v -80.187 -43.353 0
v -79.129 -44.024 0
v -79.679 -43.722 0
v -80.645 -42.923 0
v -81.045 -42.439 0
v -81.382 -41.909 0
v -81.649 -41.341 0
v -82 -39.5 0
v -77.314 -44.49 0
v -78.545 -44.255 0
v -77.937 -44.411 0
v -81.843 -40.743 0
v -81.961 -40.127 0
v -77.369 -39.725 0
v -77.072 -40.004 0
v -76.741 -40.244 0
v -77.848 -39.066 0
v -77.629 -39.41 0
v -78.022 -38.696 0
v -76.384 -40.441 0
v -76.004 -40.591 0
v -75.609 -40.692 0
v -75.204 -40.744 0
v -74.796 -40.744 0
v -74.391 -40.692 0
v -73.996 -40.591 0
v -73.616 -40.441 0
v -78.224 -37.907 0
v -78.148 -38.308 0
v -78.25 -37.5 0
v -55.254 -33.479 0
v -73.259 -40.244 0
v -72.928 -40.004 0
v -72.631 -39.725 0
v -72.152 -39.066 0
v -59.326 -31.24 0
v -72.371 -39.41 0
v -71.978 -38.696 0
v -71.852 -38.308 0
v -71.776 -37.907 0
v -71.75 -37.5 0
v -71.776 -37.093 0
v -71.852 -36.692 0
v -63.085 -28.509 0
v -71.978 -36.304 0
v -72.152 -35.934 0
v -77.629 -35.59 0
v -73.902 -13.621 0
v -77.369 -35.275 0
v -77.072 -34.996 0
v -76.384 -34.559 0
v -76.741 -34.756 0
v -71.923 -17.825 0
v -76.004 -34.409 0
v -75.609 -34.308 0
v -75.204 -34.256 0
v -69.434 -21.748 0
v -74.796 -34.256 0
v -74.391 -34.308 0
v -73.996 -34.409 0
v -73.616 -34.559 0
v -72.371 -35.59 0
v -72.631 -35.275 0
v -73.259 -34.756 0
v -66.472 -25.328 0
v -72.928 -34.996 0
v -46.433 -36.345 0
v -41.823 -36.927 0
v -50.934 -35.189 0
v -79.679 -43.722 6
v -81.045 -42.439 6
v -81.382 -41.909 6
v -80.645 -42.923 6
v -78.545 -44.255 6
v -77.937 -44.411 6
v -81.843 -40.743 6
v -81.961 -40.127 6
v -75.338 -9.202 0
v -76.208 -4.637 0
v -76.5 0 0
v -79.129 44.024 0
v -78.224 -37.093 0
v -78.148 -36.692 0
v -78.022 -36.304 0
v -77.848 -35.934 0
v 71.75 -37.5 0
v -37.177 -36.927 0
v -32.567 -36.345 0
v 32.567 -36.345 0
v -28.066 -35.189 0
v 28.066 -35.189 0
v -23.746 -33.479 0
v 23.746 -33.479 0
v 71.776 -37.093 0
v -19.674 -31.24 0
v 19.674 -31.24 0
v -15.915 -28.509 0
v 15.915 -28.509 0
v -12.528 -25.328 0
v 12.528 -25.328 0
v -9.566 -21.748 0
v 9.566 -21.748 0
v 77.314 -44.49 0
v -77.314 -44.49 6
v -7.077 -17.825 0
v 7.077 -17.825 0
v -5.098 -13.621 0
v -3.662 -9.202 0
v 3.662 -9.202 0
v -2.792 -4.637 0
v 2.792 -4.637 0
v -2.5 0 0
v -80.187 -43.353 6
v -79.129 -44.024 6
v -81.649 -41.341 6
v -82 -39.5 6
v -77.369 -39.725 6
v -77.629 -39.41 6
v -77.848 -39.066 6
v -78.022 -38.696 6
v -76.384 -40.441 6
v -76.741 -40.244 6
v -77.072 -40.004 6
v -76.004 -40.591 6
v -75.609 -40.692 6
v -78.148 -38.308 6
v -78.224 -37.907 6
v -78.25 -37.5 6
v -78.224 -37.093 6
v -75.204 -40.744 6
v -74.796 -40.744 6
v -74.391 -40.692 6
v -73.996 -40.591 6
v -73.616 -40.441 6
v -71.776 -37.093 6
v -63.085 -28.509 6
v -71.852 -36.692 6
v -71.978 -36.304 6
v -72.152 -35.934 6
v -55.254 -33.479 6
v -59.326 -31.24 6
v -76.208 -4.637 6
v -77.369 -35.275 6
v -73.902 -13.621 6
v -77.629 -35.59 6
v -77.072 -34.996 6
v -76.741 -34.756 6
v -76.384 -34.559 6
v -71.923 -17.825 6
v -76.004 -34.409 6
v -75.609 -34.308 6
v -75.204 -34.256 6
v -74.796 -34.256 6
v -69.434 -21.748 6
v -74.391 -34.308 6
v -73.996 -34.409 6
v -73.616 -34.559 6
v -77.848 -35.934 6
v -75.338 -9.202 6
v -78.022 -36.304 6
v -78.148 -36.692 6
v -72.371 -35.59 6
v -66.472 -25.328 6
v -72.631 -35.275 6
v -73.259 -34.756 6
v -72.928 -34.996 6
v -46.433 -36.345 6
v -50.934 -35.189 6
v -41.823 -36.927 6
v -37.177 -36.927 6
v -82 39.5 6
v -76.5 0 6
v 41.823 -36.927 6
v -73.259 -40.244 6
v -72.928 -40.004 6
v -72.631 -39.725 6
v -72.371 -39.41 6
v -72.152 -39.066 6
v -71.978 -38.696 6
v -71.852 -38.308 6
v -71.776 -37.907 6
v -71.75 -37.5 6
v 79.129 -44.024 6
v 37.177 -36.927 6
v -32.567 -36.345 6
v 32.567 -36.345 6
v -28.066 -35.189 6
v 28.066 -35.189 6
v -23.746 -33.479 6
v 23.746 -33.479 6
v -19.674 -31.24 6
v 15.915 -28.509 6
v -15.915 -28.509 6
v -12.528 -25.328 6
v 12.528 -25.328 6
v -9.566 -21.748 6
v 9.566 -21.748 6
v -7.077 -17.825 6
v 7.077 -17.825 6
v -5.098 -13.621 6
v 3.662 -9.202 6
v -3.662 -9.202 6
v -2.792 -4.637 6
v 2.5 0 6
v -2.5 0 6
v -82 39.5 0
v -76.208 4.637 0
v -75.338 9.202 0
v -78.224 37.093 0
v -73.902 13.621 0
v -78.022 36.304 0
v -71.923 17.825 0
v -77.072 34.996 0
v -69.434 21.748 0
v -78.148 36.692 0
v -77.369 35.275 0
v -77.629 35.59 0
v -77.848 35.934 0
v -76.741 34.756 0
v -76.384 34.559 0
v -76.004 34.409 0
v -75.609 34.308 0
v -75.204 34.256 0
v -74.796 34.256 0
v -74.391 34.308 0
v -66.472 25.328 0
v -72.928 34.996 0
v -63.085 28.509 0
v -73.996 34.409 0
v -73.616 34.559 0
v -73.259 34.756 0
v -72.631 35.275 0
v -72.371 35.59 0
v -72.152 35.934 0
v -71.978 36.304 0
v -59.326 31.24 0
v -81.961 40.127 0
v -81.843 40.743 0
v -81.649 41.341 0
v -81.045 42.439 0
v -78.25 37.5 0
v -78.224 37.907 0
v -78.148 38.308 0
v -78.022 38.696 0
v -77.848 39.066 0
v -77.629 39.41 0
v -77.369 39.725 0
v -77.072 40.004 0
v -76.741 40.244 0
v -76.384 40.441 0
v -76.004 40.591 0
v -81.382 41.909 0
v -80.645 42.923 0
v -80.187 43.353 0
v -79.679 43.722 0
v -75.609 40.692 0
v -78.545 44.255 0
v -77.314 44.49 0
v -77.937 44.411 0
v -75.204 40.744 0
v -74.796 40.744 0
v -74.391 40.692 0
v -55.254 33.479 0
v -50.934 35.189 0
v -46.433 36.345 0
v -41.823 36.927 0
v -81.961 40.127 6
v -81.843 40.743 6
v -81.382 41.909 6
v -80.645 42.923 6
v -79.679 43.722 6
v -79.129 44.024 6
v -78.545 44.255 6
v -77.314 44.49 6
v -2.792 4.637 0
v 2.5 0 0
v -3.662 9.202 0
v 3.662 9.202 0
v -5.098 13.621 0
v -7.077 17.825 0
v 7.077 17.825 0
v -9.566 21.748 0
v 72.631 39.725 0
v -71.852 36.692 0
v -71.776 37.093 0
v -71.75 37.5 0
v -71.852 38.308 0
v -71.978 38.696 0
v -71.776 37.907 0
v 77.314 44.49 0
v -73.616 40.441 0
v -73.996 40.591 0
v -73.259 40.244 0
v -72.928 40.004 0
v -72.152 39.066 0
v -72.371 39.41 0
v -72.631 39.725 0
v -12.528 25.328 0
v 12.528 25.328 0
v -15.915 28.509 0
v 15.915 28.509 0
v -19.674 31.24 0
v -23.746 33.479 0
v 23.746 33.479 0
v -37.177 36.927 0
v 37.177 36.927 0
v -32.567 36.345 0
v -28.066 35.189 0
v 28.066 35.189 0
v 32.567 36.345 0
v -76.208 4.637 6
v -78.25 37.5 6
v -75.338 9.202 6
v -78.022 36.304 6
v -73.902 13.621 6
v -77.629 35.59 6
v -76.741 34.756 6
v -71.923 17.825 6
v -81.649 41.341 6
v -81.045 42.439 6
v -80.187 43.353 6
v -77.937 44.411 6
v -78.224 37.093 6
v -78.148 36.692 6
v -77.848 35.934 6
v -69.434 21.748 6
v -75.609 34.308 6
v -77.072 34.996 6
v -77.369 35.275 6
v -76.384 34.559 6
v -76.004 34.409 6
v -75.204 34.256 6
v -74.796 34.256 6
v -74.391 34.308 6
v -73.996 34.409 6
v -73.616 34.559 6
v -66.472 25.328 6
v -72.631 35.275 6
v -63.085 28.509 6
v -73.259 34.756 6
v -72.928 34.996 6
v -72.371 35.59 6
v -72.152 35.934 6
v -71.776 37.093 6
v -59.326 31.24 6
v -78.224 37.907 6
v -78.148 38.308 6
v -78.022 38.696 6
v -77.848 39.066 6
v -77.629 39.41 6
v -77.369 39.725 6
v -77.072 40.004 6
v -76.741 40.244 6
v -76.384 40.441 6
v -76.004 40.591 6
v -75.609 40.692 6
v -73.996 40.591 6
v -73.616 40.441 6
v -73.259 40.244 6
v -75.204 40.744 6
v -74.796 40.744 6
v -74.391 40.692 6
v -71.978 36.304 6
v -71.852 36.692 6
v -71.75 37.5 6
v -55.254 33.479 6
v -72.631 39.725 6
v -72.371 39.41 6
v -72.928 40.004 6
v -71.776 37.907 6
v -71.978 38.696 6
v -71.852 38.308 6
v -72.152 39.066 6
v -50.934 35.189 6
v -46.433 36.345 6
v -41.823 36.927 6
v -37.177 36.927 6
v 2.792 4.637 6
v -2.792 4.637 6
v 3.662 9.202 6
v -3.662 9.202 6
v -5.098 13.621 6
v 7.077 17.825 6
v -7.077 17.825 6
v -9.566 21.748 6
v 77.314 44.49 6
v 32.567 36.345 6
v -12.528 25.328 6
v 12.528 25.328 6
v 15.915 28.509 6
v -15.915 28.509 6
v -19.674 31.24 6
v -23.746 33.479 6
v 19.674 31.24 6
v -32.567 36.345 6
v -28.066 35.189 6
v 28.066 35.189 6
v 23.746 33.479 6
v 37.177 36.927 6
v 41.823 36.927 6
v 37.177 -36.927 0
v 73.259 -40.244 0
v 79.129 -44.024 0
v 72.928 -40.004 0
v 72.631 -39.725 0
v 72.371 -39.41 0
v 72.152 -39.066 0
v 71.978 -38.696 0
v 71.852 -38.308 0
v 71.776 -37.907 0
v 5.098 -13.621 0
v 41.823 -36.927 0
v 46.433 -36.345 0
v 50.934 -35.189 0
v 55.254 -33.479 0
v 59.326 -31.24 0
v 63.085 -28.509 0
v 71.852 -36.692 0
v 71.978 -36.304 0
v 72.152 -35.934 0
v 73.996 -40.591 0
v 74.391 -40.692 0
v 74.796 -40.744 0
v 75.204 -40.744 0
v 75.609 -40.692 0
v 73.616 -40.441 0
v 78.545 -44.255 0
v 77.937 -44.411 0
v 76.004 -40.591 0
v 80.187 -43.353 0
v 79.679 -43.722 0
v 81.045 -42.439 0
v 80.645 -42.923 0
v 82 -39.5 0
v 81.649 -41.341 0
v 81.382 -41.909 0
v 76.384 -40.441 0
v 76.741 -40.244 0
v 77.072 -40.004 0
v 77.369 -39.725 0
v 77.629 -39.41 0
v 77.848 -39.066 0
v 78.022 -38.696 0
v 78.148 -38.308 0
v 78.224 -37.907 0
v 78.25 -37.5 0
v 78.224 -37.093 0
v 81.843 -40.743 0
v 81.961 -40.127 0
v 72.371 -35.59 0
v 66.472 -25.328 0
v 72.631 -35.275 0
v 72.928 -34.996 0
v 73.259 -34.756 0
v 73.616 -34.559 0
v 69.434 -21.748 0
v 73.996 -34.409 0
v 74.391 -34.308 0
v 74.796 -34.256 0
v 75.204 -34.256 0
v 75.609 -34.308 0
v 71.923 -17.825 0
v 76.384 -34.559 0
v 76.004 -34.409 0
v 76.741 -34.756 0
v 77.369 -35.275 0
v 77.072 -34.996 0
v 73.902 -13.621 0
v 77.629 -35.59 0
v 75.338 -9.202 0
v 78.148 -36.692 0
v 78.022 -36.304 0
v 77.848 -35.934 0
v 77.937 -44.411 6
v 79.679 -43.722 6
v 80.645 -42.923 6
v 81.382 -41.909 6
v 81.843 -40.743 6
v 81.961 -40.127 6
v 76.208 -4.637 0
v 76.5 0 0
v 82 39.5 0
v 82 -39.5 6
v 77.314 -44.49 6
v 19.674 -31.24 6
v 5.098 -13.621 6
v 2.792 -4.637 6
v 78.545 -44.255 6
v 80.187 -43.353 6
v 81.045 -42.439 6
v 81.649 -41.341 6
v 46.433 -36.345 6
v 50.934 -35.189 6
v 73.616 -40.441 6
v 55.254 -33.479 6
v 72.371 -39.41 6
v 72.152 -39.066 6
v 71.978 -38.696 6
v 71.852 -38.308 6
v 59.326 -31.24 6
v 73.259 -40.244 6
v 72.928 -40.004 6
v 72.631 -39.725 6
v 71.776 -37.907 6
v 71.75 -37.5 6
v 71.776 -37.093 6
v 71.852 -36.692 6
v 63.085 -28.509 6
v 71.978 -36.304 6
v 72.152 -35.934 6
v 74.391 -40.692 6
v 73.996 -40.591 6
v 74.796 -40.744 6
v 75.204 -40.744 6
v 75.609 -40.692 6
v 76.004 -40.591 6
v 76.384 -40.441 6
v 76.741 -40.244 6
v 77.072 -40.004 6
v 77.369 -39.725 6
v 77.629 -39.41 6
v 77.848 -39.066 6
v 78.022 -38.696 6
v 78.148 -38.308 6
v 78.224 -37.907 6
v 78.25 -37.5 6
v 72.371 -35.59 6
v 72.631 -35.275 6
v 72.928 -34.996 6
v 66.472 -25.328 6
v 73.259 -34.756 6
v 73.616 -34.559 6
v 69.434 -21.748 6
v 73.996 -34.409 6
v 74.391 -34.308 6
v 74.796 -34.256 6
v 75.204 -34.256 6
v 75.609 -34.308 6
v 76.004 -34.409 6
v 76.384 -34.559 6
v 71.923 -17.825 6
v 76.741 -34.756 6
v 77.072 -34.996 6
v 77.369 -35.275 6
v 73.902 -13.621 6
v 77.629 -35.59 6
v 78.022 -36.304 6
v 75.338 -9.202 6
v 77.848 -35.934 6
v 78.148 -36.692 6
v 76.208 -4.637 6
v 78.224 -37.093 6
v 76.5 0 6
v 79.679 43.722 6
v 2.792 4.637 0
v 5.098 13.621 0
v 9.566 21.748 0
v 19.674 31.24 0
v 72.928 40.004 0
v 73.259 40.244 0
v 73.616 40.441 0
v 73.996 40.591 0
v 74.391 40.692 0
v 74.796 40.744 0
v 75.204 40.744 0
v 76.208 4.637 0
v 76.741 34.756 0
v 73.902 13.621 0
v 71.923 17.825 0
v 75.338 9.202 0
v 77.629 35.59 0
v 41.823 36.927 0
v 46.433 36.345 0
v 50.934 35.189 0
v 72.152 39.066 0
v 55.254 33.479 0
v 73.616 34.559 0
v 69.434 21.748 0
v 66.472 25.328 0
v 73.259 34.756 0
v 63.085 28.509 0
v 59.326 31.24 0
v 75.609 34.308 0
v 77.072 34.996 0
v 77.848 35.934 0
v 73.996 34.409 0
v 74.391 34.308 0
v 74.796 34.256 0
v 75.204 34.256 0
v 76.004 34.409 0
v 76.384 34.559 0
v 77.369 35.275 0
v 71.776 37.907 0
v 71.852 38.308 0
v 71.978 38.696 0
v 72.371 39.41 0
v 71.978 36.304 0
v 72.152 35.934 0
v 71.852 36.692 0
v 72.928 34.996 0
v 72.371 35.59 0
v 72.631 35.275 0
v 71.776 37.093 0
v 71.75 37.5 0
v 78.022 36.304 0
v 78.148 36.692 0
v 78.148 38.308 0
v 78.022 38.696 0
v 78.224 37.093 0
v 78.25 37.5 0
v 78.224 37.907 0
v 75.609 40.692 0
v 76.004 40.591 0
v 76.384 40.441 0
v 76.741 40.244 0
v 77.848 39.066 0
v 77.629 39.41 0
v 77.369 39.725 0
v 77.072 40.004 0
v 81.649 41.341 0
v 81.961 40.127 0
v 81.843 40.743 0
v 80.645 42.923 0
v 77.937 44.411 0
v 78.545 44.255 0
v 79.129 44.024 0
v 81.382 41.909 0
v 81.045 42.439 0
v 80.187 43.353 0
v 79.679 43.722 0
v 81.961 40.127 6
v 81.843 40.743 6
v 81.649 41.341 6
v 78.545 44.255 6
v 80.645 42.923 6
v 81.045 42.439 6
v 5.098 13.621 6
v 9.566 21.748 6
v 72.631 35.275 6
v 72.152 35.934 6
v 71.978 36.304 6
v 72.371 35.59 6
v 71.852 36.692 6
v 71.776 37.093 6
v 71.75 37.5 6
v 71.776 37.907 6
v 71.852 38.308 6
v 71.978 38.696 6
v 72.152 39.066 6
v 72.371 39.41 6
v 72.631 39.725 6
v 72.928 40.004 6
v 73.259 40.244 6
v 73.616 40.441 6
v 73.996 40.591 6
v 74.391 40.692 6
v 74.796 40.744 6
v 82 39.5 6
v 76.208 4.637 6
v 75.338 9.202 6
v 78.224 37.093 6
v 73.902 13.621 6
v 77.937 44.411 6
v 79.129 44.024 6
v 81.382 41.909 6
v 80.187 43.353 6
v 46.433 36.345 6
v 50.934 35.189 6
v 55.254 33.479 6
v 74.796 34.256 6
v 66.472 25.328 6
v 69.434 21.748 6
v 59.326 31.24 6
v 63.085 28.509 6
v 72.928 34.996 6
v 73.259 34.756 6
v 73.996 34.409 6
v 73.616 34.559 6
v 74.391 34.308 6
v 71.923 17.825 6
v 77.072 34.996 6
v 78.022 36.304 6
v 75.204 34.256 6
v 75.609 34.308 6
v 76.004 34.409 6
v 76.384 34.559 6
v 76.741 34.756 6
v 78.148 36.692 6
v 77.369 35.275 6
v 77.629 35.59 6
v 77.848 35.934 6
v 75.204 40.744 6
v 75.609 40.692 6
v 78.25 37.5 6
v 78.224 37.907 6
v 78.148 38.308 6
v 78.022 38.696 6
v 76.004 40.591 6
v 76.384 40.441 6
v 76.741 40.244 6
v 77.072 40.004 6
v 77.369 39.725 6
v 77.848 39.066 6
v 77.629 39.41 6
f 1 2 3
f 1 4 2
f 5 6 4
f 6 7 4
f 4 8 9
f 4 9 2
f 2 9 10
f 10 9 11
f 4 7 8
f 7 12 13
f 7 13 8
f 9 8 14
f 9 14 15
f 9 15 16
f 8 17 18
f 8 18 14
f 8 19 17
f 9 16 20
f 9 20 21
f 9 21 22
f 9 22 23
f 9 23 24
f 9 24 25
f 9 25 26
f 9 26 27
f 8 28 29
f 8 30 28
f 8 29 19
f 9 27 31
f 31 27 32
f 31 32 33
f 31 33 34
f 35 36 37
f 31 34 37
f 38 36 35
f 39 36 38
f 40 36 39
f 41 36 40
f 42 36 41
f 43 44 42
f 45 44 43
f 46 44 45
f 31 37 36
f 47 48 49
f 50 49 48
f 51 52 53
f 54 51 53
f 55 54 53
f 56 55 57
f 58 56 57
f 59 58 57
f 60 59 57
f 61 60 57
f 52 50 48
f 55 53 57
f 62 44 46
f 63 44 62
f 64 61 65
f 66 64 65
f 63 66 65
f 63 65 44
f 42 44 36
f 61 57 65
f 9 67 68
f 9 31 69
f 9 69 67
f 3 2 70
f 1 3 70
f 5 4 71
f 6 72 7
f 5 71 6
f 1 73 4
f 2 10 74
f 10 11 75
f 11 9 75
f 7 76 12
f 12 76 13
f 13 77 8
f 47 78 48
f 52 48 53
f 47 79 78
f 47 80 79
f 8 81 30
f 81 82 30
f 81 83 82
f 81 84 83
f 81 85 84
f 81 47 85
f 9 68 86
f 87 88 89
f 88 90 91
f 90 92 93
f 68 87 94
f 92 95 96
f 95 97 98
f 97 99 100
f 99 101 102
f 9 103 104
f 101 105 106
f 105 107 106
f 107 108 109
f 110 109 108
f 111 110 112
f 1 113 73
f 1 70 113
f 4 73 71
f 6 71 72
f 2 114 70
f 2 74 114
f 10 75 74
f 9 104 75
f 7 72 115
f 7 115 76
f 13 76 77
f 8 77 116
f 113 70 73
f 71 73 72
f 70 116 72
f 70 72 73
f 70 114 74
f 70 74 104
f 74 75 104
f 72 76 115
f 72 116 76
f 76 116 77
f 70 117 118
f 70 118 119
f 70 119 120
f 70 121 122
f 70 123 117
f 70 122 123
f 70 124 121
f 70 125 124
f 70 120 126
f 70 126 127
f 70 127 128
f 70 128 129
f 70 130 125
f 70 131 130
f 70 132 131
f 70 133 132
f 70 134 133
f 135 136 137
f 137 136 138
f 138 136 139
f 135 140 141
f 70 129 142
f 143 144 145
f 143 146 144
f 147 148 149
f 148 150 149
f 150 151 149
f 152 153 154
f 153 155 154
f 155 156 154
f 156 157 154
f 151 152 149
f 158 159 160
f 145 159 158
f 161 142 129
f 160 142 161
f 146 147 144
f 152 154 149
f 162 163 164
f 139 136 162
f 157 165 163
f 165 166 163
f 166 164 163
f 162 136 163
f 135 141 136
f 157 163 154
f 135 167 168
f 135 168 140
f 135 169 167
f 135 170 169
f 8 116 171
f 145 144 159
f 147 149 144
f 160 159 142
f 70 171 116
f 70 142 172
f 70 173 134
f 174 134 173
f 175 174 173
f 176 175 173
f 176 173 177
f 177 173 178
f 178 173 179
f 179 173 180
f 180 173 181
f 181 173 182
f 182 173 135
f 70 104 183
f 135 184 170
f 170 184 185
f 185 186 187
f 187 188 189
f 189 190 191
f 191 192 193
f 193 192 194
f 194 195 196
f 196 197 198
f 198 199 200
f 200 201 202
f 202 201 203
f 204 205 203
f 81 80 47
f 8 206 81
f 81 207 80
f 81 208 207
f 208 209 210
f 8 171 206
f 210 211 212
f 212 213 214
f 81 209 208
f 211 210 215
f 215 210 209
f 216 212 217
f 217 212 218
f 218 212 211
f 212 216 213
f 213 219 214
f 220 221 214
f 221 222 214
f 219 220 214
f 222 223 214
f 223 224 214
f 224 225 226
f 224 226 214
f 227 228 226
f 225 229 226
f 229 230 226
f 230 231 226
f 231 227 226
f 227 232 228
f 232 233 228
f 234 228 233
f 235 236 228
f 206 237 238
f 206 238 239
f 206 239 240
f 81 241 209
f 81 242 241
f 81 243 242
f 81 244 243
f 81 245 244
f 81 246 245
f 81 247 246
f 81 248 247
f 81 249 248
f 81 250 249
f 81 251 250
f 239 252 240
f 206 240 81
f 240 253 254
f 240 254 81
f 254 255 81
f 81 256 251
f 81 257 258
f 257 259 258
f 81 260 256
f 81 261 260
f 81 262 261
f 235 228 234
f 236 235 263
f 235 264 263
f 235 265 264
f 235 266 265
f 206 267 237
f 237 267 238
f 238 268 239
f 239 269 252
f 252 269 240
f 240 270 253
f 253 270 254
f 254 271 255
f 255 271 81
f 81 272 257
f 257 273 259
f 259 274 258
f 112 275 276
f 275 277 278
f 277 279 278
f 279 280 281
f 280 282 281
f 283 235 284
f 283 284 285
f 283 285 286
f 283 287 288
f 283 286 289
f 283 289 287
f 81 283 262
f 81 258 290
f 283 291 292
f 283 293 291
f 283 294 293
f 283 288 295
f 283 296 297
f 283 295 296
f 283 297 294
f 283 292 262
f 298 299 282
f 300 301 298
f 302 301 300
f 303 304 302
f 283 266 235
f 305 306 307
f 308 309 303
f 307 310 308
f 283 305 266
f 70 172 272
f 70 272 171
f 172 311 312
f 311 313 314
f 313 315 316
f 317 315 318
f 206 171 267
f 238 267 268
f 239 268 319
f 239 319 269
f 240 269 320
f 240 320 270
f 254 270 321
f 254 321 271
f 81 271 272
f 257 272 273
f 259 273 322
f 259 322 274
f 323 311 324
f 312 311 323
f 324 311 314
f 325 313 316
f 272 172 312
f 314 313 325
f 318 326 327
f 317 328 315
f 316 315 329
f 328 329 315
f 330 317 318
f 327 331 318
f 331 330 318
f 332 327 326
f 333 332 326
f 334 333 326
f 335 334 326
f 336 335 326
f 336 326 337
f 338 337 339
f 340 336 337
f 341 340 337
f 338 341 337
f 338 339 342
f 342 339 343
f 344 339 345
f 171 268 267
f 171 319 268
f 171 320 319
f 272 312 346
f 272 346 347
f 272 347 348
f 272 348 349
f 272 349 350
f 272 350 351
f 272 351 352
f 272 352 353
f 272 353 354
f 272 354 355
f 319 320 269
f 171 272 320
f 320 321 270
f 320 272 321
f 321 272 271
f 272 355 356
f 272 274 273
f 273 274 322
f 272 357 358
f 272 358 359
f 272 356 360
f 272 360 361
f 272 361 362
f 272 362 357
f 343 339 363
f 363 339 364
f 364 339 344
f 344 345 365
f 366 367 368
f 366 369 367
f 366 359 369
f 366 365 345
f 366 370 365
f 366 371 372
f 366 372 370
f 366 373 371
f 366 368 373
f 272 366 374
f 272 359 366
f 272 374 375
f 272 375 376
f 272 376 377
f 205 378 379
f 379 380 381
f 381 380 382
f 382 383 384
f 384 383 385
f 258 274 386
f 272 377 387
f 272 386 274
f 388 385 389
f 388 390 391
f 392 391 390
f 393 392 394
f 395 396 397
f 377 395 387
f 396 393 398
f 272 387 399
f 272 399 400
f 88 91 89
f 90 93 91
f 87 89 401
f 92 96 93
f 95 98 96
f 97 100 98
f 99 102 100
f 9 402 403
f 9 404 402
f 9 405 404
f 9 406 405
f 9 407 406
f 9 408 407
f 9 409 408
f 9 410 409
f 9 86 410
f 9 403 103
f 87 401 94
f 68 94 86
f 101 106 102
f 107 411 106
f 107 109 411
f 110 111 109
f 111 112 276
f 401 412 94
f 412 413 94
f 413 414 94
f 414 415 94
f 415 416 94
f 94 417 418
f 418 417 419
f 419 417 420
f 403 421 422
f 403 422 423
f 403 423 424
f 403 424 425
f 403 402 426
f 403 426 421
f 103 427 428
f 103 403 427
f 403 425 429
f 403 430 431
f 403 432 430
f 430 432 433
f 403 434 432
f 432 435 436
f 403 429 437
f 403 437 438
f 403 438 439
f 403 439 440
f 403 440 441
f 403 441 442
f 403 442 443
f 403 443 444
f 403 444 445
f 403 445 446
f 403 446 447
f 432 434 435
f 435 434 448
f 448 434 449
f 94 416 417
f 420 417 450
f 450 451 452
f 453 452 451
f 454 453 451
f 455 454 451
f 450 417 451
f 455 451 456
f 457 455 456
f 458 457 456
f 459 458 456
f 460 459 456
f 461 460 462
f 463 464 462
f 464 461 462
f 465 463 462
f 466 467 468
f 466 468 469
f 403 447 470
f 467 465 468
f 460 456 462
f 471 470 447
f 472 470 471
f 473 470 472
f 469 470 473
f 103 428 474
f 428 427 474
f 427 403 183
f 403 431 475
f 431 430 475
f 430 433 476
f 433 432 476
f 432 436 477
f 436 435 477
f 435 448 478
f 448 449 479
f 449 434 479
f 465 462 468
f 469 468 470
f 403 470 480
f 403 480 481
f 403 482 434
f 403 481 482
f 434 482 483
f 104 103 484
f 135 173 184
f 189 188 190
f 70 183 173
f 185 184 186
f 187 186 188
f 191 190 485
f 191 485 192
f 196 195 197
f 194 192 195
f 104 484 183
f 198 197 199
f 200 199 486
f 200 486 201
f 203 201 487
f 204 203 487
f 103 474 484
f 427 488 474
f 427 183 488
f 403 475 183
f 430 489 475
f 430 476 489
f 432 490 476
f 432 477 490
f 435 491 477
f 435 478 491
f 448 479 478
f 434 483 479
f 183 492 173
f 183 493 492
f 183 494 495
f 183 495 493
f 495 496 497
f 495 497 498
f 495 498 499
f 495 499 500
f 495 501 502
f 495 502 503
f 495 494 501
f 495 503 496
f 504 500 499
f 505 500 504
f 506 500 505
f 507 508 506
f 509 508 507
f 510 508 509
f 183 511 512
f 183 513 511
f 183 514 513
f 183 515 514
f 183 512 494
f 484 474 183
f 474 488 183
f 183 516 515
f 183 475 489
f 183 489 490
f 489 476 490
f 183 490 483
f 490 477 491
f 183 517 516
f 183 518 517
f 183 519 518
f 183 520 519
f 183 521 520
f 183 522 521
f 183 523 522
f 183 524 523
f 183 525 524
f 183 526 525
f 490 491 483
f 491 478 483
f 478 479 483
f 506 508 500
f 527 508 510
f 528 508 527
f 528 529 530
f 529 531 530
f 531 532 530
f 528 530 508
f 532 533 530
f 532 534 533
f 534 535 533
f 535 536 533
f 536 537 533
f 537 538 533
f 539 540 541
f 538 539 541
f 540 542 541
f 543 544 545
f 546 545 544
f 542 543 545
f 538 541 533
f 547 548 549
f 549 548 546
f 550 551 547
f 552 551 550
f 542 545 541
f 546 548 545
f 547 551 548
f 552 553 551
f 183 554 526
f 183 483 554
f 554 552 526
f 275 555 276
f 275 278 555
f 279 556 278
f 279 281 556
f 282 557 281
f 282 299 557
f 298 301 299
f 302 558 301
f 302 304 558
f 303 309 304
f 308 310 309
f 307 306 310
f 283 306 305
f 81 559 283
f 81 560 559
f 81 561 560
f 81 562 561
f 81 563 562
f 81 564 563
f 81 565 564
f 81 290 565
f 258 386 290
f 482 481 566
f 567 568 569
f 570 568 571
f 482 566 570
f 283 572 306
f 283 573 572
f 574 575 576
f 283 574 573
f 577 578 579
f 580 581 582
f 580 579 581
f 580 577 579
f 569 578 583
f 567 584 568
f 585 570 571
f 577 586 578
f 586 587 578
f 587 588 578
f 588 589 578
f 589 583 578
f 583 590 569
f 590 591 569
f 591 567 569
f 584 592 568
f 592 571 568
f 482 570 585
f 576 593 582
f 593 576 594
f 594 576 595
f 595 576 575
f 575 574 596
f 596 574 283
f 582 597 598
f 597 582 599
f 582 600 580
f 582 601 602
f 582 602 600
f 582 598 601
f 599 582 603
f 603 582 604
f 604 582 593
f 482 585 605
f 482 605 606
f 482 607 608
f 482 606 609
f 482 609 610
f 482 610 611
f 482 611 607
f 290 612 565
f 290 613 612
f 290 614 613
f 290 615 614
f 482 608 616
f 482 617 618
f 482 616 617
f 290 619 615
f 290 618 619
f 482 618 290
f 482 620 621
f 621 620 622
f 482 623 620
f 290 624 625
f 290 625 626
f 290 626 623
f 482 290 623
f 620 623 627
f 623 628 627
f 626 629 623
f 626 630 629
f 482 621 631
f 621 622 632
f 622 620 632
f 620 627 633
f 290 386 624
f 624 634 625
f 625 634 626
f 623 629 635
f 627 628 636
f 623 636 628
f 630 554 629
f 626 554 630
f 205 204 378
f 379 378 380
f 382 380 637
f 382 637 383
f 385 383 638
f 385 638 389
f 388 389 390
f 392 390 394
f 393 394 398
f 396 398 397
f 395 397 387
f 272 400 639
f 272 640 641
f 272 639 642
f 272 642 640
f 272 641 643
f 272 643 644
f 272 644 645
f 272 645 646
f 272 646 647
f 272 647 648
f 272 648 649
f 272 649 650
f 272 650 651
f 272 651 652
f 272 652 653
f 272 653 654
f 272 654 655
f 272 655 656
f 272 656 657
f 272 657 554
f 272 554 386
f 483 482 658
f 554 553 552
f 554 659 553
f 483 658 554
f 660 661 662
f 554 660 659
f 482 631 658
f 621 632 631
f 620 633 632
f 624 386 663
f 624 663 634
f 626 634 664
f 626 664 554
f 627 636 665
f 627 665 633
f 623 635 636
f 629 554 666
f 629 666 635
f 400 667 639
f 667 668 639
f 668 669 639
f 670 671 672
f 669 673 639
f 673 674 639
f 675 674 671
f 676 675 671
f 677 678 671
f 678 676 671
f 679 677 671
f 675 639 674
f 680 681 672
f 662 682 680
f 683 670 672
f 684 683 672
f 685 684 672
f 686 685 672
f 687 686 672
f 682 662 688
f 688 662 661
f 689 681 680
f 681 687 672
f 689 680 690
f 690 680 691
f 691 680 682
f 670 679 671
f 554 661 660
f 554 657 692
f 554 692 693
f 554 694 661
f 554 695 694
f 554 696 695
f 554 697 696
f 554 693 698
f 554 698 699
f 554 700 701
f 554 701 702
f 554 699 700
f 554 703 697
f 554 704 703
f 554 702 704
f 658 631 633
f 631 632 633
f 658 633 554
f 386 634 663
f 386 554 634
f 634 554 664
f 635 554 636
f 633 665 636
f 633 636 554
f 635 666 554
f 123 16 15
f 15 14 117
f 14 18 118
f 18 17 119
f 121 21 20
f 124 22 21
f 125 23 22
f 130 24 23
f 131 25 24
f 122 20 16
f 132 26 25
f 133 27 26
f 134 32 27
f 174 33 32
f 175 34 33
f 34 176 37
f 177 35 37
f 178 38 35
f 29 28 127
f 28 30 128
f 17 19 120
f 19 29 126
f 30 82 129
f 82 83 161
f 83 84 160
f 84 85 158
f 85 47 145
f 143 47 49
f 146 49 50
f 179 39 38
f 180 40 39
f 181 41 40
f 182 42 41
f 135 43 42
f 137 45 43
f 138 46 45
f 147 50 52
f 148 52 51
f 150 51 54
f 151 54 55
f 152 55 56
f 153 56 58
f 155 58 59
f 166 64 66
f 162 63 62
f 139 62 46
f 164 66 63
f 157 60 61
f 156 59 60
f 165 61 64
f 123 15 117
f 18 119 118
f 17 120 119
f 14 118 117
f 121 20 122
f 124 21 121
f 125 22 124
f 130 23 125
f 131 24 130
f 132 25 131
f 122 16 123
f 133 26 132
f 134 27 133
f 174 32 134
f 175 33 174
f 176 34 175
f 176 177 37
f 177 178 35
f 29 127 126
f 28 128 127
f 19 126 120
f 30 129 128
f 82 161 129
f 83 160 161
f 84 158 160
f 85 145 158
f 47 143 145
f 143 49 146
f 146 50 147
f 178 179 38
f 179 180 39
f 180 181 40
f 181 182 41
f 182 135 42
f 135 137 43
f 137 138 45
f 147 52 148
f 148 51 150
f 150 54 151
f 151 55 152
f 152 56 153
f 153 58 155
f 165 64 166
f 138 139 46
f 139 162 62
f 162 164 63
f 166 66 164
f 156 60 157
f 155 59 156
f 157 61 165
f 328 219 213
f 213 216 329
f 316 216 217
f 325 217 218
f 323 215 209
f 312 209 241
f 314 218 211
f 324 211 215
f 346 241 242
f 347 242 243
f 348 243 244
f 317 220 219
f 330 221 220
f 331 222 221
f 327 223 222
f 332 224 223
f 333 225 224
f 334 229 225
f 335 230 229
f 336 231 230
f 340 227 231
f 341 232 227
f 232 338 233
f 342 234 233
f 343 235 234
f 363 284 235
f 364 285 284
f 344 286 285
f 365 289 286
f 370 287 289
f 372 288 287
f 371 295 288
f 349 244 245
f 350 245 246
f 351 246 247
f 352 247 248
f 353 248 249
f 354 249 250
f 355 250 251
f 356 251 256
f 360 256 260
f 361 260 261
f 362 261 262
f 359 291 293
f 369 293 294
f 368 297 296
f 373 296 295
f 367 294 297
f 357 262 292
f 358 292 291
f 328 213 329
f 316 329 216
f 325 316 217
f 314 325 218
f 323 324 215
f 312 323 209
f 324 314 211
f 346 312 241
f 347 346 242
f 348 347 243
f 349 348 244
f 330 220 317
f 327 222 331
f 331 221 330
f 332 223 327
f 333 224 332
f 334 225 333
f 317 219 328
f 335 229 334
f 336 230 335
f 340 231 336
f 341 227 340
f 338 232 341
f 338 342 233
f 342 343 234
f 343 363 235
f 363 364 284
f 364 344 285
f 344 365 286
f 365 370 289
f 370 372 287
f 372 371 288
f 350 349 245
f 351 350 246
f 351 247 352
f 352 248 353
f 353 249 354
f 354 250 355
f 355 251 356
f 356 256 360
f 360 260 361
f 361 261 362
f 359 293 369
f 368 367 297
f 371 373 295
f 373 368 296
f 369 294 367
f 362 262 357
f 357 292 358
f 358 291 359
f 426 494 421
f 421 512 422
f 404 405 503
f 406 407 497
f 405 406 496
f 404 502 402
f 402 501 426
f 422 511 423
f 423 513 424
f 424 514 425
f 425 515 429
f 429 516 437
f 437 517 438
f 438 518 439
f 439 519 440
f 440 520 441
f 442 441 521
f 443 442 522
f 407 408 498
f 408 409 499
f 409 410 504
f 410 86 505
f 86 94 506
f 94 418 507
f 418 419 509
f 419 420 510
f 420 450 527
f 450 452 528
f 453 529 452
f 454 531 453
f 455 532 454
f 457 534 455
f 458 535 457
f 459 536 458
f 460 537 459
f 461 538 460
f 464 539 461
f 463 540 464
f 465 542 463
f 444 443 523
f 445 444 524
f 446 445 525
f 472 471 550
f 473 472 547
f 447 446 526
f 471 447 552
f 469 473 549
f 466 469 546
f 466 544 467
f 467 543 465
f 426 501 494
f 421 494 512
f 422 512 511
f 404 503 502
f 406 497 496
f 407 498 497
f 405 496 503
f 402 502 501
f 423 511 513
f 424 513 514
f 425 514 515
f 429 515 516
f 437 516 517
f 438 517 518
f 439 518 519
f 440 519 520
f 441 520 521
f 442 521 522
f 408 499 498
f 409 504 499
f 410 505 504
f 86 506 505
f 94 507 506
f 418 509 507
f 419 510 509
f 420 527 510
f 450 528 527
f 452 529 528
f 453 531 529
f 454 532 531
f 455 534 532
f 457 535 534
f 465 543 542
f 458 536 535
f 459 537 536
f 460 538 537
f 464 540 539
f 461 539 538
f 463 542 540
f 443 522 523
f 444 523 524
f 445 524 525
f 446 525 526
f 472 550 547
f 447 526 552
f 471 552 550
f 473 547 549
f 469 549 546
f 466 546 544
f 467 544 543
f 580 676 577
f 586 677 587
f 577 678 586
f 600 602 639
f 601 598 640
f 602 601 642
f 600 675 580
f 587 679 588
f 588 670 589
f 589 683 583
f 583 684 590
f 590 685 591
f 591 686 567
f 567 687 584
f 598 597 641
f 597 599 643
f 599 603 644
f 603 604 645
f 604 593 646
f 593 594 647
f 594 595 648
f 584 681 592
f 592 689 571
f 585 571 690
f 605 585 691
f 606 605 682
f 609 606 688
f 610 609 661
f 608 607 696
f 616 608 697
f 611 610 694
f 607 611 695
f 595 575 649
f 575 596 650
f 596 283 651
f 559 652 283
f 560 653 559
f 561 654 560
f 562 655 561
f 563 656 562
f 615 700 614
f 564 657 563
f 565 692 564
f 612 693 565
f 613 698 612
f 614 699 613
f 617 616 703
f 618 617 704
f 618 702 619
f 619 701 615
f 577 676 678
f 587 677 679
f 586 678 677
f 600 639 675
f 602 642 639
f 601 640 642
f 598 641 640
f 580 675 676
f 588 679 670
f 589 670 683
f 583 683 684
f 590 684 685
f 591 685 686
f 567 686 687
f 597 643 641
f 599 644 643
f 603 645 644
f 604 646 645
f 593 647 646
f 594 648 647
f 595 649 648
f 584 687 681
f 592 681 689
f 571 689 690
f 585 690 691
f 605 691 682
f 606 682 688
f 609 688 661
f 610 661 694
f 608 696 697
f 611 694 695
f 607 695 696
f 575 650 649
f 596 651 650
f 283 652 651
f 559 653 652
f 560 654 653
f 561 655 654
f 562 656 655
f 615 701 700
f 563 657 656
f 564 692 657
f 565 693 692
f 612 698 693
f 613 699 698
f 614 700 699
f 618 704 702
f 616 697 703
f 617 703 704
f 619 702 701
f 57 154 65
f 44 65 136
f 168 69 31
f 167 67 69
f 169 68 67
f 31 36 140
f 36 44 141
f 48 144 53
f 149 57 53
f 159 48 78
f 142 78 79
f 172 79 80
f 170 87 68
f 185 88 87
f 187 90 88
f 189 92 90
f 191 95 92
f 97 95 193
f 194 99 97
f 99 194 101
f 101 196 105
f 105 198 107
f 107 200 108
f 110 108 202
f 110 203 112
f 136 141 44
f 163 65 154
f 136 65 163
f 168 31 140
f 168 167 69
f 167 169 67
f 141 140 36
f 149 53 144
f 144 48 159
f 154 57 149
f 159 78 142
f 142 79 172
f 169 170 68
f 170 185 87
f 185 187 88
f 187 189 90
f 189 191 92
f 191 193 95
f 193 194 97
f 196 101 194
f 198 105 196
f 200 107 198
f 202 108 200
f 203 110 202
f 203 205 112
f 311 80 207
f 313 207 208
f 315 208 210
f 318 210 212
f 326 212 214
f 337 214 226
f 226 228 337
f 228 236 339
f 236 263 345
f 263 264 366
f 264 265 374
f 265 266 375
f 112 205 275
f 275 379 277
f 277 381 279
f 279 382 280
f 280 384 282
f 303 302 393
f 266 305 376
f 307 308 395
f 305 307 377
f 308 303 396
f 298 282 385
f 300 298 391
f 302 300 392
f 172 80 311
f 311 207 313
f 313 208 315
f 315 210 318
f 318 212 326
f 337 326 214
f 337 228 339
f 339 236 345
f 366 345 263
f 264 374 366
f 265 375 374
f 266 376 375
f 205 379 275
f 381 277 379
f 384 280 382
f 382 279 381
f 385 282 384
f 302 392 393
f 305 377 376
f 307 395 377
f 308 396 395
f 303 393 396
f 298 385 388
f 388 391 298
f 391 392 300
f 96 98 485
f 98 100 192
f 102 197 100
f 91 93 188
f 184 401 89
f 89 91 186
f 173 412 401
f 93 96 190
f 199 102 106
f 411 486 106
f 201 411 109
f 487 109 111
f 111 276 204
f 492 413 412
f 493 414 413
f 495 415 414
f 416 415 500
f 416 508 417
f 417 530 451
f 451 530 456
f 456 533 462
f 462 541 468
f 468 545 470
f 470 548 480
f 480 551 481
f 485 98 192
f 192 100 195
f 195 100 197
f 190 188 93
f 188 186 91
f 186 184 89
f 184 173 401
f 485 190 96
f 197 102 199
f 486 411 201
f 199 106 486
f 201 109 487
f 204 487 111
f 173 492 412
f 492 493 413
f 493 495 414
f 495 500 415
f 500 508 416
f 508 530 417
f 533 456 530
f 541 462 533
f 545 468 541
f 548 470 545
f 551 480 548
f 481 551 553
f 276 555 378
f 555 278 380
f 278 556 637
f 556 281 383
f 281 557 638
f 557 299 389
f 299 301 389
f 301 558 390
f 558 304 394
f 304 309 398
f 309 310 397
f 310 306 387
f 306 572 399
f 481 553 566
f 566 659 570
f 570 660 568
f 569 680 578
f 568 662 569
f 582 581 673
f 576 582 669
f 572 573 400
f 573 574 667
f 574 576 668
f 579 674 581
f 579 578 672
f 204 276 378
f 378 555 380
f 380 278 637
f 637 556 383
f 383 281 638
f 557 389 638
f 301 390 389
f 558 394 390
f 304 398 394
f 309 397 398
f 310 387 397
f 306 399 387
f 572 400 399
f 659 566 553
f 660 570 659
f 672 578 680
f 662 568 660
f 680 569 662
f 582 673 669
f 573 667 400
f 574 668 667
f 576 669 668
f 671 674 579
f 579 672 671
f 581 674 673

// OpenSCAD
$fn = 50;

difference() {
	union() {
		hull() {
			translate(v = [-77.0, 39.5, 0]) {
				cylinder(h = 6, r = 5);
			}
			translate(v = [77.0, 39.5, 0]) {
				cylinder(h = 6, r = 5);
			}
			translate(v = [-77.0, -39.5, 0]) {
				cylinder(h = 6, r = 5);
			}
			translate(v = [77.0, -39.5, 0]) {
				cylinder(h = 6, r = 5);
			}
		}
	}
	union() {
		translate(v = [-75.0, -37.5, -100.0]) {
			cylinder(h = 200, r = 3.25);
		}
		translate(v = [-75.0, 37.5, -100.0]) {
			cylinder(h = 200, r = 3.25);
		}
		translate(v = [75.0, -37.5, -100.0]) {
			cylinder(h = 200, r = 3.25);
		}
		translate(v = [75.0, 37.5, -100.0]) {
			cylinder(h = 200, r = 3.25);
		}
		translate(v = [-75.0, -37.5, -100.0]) {
			cylinder(h = 200, r = 1.8);
		}
		translate(v = [-75.0, 37.5, -100.0]) {
			cylinder(h = 200, r = 1.8);
		}
		translate(v = [75.0, -37.5, -100.0]) {
			cylinder(h = 200, r = 1.8);
		}
		translate(v = [75.0, 37.5, -100.0]) {
			cylinder(h = 200, r = 1.8);
		}
		translate(v = [-39.5, 0, 0.0]) {
			cylinder(h = 6, r = 37.0);
		}
		translate(v = [39.5, 0, 0.0]) {
			cylinder(h = 6, r = 37.0);
		}
	}
}
